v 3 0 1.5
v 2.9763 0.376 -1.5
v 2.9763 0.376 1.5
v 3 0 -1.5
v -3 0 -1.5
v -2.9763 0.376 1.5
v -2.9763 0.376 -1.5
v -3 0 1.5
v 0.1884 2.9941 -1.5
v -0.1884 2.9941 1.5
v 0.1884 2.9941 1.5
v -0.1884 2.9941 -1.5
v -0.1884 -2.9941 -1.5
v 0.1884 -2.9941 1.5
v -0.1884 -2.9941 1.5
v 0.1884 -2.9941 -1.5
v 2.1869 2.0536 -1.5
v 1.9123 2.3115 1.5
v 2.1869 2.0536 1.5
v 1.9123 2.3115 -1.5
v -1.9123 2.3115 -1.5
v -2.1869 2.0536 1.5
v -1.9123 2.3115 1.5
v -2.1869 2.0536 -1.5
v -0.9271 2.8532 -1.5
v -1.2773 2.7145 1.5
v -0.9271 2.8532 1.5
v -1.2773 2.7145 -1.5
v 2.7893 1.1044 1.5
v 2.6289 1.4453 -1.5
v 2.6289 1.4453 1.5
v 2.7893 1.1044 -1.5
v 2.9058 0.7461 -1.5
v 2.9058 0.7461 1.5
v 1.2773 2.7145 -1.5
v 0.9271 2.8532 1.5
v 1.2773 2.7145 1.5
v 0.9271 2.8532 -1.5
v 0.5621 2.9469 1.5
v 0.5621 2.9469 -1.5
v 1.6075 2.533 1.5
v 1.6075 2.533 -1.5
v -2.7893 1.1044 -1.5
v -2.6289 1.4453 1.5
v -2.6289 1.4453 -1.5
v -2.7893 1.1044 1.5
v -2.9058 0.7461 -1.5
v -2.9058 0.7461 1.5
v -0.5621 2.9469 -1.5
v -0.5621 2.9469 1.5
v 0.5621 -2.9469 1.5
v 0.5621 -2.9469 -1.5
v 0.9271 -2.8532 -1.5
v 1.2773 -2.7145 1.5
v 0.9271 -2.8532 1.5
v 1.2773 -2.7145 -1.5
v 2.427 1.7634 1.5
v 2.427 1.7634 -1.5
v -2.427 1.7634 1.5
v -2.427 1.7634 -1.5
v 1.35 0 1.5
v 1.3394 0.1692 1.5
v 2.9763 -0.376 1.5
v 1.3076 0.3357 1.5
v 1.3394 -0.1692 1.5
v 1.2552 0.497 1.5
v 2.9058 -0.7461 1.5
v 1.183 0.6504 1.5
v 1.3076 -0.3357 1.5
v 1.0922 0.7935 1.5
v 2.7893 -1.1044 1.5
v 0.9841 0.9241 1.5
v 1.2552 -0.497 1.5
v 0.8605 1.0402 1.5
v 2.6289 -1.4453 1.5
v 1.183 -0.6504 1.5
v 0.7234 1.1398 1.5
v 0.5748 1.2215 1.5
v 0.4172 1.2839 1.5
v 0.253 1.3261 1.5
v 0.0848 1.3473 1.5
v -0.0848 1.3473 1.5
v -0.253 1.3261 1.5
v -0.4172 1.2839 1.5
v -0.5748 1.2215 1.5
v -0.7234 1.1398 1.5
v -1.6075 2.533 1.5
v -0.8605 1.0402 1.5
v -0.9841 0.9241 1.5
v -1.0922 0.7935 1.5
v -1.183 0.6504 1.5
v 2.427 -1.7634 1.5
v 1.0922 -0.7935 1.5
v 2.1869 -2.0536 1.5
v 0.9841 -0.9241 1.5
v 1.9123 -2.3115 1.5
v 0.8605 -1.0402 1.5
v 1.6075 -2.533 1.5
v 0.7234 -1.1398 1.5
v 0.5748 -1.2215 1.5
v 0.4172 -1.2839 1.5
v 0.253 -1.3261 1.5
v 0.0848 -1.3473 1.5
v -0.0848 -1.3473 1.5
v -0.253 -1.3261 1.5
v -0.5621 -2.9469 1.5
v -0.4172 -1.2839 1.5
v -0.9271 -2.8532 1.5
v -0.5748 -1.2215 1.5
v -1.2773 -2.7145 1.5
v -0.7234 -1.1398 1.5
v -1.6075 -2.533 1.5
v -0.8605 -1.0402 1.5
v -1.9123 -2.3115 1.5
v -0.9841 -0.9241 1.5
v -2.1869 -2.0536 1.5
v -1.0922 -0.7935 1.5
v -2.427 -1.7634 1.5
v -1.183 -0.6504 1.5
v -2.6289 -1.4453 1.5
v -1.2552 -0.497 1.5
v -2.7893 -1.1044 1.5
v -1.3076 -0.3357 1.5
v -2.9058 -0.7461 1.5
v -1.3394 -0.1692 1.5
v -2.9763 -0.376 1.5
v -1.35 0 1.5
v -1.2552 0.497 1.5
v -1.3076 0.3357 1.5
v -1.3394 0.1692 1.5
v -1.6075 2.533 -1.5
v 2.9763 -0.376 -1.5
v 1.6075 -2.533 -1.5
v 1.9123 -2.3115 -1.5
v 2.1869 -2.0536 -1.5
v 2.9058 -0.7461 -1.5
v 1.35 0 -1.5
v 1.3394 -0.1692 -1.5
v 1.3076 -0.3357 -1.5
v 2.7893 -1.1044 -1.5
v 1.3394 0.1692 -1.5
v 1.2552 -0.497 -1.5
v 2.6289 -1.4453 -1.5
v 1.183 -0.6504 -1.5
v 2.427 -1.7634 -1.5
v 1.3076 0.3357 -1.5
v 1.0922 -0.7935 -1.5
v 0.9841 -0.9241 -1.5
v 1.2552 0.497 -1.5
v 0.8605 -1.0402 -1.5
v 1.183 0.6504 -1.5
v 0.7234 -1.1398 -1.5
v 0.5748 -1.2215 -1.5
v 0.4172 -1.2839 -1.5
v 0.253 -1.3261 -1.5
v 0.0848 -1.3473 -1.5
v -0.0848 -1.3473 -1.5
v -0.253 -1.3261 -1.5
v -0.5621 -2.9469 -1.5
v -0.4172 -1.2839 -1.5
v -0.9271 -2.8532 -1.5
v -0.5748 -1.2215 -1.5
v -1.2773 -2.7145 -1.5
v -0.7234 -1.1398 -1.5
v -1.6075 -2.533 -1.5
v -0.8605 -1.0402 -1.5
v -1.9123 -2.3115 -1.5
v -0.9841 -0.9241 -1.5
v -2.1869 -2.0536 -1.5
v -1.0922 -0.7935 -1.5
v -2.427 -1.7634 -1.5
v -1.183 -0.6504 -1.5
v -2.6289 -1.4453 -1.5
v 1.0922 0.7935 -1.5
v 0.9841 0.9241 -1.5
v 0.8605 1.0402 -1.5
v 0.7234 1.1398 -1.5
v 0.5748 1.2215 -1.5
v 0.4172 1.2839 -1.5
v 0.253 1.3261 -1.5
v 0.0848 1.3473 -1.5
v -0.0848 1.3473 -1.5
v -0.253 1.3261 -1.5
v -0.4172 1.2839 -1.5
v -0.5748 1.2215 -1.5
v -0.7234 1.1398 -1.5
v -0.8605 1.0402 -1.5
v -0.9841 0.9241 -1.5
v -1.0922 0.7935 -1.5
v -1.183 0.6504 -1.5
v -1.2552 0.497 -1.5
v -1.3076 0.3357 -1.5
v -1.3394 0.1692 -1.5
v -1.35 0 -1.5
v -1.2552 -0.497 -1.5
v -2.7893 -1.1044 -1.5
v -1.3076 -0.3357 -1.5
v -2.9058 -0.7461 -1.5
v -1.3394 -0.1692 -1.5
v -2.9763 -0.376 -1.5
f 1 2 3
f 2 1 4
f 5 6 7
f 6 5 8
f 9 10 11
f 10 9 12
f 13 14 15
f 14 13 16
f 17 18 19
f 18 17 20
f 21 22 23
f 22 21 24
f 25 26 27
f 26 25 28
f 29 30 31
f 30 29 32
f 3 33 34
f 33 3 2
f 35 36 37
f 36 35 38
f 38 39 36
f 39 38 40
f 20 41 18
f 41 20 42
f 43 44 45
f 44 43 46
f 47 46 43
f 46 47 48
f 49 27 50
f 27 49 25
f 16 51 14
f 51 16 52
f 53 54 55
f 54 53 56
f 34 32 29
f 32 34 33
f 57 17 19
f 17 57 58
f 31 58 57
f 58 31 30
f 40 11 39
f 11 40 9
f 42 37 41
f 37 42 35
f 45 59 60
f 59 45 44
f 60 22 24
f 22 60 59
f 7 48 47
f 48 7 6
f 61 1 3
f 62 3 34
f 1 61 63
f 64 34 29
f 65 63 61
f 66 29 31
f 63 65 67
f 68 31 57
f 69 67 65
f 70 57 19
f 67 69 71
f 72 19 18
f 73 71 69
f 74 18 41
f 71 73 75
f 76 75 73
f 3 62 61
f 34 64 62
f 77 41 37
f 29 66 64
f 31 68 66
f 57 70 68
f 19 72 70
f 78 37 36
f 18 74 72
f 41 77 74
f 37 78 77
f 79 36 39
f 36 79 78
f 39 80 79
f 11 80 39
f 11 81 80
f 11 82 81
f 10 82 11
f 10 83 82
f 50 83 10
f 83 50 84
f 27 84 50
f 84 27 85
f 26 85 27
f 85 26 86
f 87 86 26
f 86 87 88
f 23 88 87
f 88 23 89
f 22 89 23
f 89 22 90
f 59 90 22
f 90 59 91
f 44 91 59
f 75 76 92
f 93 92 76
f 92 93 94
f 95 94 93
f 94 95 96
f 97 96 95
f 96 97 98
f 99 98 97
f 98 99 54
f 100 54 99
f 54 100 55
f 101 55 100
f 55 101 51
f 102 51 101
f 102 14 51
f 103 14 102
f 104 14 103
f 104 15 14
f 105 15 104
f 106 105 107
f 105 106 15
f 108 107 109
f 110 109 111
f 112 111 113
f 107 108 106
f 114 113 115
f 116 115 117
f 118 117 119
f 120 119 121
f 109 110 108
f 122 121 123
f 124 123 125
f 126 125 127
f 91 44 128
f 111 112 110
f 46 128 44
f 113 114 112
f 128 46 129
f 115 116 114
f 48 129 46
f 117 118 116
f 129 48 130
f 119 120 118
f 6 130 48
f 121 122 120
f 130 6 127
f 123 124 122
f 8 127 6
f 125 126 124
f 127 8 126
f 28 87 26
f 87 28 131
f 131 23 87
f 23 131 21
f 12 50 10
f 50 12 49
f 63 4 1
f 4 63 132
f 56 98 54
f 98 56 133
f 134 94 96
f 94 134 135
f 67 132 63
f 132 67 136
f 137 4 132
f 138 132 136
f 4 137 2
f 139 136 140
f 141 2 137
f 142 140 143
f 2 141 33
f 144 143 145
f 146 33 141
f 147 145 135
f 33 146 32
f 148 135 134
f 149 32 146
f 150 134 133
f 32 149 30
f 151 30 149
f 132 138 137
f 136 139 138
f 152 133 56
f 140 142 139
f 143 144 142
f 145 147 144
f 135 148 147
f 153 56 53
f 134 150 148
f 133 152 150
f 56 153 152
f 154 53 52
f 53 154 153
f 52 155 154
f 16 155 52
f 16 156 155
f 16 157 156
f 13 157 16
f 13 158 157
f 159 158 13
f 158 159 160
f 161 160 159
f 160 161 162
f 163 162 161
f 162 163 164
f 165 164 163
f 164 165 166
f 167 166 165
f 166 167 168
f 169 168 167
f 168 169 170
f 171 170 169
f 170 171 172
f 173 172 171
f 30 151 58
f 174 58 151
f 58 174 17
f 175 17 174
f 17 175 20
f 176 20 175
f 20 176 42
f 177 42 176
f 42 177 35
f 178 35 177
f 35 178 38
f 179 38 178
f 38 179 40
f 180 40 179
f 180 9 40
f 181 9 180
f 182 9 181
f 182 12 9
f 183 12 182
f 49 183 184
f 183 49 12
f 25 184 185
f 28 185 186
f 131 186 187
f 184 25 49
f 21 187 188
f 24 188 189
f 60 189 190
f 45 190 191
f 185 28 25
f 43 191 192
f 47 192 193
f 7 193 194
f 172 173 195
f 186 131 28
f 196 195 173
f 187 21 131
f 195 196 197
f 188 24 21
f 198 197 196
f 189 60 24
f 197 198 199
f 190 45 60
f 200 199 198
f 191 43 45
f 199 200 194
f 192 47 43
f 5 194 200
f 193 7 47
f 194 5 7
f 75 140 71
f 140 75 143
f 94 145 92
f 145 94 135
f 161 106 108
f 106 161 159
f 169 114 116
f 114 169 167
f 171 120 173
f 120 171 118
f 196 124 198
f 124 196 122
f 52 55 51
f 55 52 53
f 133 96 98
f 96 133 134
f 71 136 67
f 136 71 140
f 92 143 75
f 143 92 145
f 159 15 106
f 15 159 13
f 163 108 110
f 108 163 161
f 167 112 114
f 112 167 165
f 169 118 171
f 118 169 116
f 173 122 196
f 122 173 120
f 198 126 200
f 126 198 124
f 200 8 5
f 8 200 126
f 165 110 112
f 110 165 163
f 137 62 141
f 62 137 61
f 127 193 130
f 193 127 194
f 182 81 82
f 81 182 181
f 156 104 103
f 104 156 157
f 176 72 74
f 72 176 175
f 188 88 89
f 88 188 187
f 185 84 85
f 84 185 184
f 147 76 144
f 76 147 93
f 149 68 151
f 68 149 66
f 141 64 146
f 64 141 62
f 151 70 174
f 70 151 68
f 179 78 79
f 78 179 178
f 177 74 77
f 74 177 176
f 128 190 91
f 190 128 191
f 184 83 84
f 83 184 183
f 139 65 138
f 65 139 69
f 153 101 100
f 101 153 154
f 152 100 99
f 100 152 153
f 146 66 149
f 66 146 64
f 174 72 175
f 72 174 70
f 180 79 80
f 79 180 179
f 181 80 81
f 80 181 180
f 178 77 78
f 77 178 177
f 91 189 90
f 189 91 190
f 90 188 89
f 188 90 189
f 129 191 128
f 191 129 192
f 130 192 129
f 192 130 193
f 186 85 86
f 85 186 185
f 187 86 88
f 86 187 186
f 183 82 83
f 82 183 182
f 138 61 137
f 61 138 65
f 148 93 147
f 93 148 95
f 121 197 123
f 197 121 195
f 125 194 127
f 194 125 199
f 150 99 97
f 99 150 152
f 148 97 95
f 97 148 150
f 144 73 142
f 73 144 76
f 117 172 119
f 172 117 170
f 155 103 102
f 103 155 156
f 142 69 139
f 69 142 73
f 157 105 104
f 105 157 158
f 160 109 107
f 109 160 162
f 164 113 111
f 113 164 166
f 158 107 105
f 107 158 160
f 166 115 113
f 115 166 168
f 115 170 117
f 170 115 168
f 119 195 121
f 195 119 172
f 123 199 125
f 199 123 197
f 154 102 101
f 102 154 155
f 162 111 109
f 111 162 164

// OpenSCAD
$fn = 50;


difference() {
	union() {
		translate(v = [0, 0, -1.5000000000]) {
			cylinder(h = 3, r = 3.0000000000);
		}
	}
	union() {
		translate(v = [0, 0, -100.0000000000]) {
			cylinder(h = 200, r = 1.3500000000);
		}
	}
}
